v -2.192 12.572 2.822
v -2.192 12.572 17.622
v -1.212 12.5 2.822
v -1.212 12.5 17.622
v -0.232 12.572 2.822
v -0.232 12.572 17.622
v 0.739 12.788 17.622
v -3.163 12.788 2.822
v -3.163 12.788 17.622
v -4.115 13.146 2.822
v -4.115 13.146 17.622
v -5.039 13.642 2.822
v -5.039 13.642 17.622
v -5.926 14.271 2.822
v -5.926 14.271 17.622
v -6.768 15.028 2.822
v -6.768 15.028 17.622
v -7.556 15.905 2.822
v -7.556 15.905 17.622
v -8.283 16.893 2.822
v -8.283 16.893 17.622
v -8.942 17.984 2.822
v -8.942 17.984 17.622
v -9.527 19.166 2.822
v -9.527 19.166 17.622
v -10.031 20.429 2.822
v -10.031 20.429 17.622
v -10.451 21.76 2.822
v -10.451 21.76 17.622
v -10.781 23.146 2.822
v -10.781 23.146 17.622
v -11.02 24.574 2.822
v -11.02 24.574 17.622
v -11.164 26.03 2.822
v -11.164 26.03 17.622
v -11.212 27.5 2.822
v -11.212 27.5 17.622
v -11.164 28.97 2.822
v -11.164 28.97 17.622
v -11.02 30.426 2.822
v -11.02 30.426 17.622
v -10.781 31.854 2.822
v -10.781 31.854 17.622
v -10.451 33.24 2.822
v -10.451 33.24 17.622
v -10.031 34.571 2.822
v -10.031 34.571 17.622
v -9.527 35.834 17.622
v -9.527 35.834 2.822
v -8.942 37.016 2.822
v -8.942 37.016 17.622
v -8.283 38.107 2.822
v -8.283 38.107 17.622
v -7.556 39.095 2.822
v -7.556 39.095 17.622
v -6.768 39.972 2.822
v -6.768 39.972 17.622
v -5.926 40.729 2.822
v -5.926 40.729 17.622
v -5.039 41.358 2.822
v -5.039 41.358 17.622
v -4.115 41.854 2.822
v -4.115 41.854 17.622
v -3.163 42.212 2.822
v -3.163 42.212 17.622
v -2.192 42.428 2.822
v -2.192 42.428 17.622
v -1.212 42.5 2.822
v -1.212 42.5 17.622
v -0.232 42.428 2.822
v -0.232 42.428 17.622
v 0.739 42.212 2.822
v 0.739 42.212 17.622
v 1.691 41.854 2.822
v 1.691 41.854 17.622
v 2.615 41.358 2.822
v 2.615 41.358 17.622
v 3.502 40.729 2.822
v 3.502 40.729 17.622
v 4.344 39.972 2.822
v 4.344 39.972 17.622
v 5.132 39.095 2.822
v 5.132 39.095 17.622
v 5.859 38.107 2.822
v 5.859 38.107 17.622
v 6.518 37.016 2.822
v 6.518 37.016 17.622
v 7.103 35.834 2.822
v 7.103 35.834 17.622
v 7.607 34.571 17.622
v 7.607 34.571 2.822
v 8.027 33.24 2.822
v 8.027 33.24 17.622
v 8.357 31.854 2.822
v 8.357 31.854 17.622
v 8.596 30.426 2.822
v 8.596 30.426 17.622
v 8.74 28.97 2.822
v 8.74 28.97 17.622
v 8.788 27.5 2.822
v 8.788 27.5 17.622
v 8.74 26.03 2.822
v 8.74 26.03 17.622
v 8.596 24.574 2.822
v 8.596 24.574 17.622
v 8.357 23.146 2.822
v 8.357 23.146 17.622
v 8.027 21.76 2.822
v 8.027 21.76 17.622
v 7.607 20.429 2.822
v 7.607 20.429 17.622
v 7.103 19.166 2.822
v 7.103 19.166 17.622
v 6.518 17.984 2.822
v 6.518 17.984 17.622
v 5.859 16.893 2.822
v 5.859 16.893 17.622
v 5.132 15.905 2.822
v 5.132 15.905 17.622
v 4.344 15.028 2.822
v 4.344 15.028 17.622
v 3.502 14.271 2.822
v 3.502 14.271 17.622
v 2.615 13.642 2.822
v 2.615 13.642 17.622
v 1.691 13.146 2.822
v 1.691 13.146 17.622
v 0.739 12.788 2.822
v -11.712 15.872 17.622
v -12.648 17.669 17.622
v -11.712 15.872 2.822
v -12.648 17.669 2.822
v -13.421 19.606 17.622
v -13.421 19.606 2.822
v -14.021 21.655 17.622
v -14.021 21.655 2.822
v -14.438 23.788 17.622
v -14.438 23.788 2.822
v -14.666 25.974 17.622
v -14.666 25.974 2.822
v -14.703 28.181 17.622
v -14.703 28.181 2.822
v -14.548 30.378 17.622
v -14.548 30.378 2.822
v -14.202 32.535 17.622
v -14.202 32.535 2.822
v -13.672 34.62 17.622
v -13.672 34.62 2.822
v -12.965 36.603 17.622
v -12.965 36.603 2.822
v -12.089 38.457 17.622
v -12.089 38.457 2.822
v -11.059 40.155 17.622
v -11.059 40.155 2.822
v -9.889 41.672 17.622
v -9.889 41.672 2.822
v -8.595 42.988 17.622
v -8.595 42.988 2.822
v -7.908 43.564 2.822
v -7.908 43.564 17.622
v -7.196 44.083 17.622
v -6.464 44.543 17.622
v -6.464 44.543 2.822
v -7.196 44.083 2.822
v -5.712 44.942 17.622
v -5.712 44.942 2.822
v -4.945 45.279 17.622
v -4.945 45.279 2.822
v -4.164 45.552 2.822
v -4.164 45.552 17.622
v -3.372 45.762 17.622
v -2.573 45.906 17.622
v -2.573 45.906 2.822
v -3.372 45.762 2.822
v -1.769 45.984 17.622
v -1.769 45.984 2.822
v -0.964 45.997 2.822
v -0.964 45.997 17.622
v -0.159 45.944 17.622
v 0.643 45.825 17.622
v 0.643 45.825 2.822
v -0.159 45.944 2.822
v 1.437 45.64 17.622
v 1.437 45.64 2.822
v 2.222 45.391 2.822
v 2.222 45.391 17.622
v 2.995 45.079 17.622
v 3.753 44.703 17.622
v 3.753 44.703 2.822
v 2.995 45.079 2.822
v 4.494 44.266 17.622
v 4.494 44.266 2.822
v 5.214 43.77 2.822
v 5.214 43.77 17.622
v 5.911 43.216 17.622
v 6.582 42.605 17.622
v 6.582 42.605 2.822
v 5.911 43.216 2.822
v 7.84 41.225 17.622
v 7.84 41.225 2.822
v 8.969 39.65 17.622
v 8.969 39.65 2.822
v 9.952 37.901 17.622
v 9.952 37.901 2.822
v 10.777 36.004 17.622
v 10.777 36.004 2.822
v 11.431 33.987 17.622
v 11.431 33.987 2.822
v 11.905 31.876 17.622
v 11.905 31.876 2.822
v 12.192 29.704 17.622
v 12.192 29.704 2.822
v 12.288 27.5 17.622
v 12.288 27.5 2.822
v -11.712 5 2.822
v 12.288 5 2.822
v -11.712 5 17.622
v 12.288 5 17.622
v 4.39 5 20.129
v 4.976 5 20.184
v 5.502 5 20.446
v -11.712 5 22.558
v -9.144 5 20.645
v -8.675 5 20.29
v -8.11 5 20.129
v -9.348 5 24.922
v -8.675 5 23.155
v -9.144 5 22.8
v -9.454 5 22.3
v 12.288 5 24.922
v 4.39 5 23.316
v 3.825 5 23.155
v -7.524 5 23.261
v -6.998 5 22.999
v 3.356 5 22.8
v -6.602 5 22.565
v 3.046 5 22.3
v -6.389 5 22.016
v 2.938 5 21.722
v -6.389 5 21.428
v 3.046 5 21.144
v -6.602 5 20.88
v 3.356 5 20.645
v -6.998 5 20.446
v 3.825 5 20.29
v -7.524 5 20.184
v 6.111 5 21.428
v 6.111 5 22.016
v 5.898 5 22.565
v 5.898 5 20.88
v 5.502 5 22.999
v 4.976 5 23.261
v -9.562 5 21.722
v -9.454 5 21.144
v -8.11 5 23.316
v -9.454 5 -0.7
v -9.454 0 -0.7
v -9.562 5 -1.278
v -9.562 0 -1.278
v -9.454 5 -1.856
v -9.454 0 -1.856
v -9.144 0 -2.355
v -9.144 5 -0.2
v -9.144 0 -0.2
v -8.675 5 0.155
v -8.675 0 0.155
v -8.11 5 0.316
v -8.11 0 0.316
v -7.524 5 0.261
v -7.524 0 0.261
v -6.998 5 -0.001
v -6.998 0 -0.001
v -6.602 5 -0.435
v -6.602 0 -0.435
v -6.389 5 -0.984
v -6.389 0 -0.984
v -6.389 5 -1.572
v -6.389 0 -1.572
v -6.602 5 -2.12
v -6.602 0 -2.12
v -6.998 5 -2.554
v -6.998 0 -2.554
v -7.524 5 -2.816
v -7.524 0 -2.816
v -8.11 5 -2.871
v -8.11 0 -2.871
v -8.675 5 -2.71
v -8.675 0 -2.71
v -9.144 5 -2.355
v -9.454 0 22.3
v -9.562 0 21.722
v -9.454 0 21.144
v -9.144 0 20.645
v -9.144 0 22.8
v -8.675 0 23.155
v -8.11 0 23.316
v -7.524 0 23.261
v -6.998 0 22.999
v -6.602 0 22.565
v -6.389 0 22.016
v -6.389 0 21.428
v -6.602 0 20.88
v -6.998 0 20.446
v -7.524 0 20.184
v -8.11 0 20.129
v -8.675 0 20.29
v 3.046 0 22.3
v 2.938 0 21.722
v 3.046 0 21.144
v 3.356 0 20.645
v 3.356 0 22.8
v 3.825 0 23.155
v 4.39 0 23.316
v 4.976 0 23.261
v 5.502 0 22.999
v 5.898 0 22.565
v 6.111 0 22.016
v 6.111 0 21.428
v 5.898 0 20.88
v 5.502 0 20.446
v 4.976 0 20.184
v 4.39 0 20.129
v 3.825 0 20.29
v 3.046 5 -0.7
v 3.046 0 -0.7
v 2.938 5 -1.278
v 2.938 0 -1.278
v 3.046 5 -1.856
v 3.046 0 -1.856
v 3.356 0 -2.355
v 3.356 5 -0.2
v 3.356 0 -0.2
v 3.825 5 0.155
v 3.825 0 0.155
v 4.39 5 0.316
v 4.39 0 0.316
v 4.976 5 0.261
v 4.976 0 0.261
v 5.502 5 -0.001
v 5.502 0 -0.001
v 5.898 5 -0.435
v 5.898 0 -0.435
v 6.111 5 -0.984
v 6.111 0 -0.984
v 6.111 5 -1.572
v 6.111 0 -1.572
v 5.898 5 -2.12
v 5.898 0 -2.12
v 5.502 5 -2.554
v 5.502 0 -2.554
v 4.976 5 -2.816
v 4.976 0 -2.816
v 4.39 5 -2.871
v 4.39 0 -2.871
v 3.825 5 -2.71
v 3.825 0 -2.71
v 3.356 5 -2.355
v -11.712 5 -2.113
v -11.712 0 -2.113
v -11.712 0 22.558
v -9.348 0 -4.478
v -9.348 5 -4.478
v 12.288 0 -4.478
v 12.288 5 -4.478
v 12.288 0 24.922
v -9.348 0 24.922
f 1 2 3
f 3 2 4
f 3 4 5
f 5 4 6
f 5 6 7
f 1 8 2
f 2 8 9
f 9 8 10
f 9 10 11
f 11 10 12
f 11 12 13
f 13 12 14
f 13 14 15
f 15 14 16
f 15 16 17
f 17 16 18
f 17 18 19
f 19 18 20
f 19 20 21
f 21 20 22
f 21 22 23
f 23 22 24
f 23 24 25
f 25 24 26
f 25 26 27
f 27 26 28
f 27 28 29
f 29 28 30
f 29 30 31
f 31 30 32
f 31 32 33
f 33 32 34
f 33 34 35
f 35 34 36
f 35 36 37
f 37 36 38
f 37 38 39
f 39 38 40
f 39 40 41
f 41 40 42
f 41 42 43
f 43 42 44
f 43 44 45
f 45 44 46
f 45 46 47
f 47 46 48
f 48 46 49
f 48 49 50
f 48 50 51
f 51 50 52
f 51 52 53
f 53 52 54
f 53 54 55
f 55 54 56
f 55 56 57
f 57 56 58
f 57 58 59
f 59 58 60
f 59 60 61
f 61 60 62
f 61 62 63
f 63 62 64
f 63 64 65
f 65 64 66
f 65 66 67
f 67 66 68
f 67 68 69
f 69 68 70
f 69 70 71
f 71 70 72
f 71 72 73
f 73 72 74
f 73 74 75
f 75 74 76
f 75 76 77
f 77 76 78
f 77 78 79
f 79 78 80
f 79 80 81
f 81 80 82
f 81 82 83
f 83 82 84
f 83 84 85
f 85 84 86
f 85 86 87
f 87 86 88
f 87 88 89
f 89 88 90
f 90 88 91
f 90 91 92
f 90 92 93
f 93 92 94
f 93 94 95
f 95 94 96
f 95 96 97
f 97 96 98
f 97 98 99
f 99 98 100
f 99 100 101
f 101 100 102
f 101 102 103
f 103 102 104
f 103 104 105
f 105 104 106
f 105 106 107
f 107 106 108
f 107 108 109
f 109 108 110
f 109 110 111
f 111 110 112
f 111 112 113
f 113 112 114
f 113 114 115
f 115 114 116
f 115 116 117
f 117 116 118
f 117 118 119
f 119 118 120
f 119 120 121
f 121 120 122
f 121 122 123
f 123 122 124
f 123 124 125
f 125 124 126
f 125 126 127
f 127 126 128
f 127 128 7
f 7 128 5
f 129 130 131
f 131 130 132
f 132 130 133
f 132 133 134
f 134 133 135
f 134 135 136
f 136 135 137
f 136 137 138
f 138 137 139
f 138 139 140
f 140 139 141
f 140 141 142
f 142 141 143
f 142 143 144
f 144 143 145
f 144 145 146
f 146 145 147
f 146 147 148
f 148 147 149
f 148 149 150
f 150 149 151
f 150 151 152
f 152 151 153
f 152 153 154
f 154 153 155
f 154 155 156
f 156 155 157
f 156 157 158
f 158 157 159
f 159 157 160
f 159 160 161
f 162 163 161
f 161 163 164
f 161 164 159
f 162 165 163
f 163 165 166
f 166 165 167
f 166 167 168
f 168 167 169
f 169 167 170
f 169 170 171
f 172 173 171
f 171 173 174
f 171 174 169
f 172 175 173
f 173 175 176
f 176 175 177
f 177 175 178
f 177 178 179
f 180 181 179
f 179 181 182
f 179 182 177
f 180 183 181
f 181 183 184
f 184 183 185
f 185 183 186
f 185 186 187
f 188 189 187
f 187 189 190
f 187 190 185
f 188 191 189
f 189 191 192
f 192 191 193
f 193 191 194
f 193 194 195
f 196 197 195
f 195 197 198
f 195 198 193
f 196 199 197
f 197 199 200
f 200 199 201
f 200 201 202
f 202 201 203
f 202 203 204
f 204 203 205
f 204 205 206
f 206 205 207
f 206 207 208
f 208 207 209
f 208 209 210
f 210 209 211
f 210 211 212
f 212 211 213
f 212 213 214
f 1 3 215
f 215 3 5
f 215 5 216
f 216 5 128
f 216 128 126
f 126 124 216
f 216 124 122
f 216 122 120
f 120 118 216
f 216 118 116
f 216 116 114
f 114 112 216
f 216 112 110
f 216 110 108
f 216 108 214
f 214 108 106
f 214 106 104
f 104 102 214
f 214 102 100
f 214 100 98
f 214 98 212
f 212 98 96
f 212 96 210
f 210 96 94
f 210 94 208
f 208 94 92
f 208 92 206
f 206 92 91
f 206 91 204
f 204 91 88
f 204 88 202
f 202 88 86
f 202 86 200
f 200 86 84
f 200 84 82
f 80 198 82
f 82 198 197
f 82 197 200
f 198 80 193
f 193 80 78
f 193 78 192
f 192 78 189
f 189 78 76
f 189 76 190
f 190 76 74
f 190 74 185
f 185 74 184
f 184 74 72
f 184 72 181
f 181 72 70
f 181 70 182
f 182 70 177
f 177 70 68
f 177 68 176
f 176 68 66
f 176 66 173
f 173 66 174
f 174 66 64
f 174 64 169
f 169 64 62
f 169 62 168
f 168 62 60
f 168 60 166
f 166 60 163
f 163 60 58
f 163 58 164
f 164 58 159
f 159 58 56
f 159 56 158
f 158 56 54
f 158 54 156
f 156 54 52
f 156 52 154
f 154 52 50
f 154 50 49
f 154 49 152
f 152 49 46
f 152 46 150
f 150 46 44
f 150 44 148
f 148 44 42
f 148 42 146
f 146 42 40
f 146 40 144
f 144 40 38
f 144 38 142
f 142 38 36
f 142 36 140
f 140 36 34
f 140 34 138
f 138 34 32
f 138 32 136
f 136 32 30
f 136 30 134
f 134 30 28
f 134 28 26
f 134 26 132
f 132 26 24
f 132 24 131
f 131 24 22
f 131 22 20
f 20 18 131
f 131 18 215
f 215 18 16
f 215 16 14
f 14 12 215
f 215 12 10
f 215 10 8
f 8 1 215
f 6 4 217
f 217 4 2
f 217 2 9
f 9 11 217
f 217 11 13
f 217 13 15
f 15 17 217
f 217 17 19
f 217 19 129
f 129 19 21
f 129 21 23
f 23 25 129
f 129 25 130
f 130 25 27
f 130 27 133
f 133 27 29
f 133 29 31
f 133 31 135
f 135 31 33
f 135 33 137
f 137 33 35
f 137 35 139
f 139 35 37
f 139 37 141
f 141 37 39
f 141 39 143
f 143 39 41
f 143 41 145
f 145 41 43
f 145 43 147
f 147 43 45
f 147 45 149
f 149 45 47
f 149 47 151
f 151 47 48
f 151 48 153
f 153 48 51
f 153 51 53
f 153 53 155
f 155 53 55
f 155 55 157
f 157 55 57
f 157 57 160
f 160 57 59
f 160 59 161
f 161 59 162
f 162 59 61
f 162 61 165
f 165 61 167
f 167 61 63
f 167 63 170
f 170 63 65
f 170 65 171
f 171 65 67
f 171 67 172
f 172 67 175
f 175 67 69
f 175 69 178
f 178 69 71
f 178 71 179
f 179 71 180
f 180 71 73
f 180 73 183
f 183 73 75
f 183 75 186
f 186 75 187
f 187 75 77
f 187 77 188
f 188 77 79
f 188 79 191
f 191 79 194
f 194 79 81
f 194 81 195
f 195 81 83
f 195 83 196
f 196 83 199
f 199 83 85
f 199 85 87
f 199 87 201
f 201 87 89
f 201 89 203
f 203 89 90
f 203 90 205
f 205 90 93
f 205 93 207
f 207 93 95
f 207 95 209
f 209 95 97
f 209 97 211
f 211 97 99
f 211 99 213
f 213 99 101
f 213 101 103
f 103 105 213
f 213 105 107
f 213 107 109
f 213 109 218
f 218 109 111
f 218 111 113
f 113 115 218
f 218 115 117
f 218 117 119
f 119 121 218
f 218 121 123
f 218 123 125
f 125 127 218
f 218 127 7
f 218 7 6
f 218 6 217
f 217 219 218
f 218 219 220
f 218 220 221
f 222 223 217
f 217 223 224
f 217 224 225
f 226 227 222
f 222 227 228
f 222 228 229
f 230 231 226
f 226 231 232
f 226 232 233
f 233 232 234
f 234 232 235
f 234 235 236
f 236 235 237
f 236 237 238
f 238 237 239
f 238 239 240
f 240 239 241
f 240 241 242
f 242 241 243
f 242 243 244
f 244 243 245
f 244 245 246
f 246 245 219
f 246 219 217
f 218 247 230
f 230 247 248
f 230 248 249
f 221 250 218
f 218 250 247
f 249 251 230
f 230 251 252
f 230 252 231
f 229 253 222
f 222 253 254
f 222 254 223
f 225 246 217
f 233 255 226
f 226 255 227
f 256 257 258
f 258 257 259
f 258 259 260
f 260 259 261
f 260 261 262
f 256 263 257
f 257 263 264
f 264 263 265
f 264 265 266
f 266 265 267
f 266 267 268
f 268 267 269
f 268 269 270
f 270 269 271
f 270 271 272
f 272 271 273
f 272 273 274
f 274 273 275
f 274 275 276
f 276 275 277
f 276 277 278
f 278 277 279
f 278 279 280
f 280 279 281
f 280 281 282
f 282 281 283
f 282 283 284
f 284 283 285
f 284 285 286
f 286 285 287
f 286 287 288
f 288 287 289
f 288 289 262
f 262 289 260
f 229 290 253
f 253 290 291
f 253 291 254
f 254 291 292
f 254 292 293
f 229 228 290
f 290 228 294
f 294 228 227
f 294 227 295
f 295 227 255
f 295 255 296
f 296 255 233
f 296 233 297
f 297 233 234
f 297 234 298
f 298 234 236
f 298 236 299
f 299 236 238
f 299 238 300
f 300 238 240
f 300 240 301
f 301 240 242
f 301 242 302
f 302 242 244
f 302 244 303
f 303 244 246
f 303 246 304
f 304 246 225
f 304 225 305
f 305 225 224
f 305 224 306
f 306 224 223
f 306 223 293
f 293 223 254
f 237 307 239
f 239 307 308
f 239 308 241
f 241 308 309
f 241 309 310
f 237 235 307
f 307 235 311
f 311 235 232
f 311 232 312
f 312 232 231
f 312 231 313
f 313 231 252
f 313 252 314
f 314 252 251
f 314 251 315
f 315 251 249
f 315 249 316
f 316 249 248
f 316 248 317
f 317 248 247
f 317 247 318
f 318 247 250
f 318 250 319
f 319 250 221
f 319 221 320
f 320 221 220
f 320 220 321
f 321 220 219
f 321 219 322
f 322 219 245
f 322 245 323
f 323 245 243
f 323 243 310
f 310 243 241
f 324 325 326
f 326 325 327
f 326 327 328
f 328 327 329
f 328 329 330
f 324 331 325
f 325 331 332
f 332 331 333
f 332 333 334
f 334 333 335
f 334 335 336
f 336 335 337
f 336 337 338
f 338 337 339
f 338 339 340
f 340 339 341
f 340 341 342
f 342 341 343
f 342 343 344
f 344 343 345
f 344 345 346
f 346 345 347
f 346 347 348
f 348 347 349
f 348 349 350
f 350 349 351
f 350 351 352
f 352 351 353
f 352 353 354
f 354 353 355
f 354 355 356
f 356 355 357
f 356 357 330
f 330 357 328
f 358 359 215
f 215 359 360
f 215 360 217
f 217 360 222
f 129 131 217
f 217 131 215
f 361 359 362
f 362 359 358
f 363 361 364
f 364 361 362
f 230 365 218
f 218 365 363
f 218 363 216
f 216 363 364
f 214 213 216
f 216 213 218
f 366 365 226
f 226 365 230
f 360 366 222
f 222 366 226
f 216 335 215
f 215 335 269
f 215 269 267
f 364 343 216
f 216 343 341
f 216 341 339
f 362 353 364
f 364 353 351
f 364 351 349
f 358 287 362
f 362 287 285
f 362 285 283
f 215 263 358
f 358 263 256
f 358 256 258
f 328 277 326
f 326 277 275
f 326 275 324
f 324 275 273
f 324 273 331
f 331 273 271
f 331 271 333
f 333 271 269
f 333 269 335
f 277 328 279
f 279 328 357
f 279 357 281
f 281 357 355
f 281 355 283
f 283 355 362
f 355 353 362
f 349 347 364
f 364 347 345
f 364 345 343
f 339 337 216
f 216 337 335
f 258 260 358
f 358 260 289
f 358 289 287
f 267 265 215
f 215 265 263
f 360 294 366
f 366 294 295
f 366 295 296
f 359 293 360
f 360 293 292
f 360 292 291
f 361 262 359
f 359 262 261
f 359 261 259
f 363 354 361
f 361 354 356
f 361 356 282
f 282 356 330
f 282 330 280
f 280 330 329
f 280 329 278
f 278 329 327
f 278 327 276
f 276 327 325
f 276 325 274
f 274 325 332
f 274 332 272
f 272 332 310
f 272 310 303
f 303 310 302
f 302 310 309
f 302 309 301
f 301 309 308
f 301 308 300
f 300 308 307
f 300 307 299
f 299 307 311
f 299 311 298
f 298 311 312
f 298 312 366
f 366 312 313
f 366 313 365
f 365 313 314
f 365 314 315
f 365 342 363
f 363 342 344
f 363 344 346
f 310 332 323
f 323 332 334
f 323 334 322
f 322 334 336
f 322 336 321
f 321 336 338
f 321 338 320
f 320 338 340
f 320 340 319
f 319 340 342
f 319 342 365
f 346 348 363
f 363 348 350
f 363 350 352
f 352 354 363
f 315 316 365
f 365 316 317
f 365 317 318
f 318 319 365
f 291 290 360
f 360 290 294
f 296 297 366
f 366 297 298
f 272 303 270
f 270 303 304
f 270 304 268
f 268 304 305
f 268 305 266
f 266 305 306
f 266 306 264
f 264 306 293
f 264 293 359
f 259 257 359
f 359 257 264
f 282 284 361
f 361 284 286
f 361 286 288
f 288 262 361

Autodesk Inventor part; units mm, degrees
ref_plane "YZ Plane" through (0, 0, 0) normal (1, 0, 0) x (0, 1, 0)
ref_plane "XZ Plane" through (0, 0, 0) normal (0, 1, 0) x (-1, 0, 0)
ref_plane "XY Plane" through (0, 0, 0) normal (0, 0, 1) x (1, 0, 0)
sketch "Sketch1" plane through (0, 0, 0) normal (0, 1, 0) x (-1, 0, 0)
  circle A0 centre (7.962, -1.2776) radius 1.6
  circle A1 centre (-4.538, -1.2776) radius 1.6
  circle A2 centre (-4.538, 21.7224) radius 1.6
  circle A3 centre (7.962, 21.7224) radius 1.6
  line L0 (11.712, -2.1134) -> (11.712, 22.5582)
  line L1 (9.3478, -4.4776) -> (11.712, -2.1134)
  line L2 (-12.288, -4.4776) -> (9.3478, -4.4776)
  line L3 (-12.288, 24.9224) -> (-12.288, -4.4776)
  line L4 (9.3478, 24.9224) -> (-12.288, 24.9224)
  line L5 (11.712, 22.5582) -> (9.3478, 24.9224)
  point P0 (0, 0)
  dimension "d0" = 3.75
  dimension "d1" = 3.2
  dimension "d2" = 3.2
  dimension "d3" = 7.75
  dimension "d4" = 7.75
  dimension "d5" = 3.2
  dimension "d6" = 3.2
  dimension "d7" = 3.75
  dimension "d8" = 3.2
  dimension "d9" = 3.2
  dimension "d10" = 3.2
  dimension "d11" = 3.2
extrude "Extrusion1" add sketch "Sketch1" along normal blind 5
sketch "Sketch2" plane through (0, 5, 0) normal (0, 1, 0) x (1, 0, 0)
  line L0 (12.288, -24.9224) -> (12.288, 4.4776) projected
  line L1 (-11.712, -17.6224) -> (12.288, -17.6224)
  line L2 (12.288, -17.6224) -> (12.288, -2.8224)
  line L3 (12.288, -2.8224) -> (-11.712, -2.8224)
  line L4 (-11.712, -2.8224) -> (-11.712, -17.6224)
  circle A0 centre (-7.962, -21.7224) radius 1.6 projected
  circle A1 centre (-7.962, 1.2776) radius 1.6 projected
  line L5 (-11.712, 2.1134) -> (-11.712, -22.5582) projected
  point P0 (0, 0)
  point P1 (-11.712, -10.2224)
  dimension "d14" = 2.5
  dimension "d15" = 2.5
  dimension "d16" = 0
extrude "Extrusion2" add sketch "Sketch2" along normal blind 4 contours L1 L4 L3 L0
sketch "Sketch3" plane through (-11.712, 5, 17.6224) normal (0, 0, 1) x (1, 0, 0)
  ellipse E0 centre (10.5, 22.5) end of major axis (10.5, 7.5) minor radius 10
  ellipse E1 centre (10.5, 22.5) end of major axis (10.5, 4) minor radius 13.5
  line L0 (0, 4) -> (24, 4) projected
  line L1 (24, 4) -> (24, 22.5)
  line L2 (24, 4) -> (10.5, 4)
  line L3 (0, 4) -> (0, 10.872)
  point P0 (11.712, -5)
  dimension "d21" = 13.5
  dimension "d22" = 18.5
  dimension "d19" = 10
  dimension "d20" = 15
  dimension "d23" = 18.5
extrude "Extrusion3" add sketch "Sketch3" against normal blind 14.8
properties part number "finger_hole_l"
